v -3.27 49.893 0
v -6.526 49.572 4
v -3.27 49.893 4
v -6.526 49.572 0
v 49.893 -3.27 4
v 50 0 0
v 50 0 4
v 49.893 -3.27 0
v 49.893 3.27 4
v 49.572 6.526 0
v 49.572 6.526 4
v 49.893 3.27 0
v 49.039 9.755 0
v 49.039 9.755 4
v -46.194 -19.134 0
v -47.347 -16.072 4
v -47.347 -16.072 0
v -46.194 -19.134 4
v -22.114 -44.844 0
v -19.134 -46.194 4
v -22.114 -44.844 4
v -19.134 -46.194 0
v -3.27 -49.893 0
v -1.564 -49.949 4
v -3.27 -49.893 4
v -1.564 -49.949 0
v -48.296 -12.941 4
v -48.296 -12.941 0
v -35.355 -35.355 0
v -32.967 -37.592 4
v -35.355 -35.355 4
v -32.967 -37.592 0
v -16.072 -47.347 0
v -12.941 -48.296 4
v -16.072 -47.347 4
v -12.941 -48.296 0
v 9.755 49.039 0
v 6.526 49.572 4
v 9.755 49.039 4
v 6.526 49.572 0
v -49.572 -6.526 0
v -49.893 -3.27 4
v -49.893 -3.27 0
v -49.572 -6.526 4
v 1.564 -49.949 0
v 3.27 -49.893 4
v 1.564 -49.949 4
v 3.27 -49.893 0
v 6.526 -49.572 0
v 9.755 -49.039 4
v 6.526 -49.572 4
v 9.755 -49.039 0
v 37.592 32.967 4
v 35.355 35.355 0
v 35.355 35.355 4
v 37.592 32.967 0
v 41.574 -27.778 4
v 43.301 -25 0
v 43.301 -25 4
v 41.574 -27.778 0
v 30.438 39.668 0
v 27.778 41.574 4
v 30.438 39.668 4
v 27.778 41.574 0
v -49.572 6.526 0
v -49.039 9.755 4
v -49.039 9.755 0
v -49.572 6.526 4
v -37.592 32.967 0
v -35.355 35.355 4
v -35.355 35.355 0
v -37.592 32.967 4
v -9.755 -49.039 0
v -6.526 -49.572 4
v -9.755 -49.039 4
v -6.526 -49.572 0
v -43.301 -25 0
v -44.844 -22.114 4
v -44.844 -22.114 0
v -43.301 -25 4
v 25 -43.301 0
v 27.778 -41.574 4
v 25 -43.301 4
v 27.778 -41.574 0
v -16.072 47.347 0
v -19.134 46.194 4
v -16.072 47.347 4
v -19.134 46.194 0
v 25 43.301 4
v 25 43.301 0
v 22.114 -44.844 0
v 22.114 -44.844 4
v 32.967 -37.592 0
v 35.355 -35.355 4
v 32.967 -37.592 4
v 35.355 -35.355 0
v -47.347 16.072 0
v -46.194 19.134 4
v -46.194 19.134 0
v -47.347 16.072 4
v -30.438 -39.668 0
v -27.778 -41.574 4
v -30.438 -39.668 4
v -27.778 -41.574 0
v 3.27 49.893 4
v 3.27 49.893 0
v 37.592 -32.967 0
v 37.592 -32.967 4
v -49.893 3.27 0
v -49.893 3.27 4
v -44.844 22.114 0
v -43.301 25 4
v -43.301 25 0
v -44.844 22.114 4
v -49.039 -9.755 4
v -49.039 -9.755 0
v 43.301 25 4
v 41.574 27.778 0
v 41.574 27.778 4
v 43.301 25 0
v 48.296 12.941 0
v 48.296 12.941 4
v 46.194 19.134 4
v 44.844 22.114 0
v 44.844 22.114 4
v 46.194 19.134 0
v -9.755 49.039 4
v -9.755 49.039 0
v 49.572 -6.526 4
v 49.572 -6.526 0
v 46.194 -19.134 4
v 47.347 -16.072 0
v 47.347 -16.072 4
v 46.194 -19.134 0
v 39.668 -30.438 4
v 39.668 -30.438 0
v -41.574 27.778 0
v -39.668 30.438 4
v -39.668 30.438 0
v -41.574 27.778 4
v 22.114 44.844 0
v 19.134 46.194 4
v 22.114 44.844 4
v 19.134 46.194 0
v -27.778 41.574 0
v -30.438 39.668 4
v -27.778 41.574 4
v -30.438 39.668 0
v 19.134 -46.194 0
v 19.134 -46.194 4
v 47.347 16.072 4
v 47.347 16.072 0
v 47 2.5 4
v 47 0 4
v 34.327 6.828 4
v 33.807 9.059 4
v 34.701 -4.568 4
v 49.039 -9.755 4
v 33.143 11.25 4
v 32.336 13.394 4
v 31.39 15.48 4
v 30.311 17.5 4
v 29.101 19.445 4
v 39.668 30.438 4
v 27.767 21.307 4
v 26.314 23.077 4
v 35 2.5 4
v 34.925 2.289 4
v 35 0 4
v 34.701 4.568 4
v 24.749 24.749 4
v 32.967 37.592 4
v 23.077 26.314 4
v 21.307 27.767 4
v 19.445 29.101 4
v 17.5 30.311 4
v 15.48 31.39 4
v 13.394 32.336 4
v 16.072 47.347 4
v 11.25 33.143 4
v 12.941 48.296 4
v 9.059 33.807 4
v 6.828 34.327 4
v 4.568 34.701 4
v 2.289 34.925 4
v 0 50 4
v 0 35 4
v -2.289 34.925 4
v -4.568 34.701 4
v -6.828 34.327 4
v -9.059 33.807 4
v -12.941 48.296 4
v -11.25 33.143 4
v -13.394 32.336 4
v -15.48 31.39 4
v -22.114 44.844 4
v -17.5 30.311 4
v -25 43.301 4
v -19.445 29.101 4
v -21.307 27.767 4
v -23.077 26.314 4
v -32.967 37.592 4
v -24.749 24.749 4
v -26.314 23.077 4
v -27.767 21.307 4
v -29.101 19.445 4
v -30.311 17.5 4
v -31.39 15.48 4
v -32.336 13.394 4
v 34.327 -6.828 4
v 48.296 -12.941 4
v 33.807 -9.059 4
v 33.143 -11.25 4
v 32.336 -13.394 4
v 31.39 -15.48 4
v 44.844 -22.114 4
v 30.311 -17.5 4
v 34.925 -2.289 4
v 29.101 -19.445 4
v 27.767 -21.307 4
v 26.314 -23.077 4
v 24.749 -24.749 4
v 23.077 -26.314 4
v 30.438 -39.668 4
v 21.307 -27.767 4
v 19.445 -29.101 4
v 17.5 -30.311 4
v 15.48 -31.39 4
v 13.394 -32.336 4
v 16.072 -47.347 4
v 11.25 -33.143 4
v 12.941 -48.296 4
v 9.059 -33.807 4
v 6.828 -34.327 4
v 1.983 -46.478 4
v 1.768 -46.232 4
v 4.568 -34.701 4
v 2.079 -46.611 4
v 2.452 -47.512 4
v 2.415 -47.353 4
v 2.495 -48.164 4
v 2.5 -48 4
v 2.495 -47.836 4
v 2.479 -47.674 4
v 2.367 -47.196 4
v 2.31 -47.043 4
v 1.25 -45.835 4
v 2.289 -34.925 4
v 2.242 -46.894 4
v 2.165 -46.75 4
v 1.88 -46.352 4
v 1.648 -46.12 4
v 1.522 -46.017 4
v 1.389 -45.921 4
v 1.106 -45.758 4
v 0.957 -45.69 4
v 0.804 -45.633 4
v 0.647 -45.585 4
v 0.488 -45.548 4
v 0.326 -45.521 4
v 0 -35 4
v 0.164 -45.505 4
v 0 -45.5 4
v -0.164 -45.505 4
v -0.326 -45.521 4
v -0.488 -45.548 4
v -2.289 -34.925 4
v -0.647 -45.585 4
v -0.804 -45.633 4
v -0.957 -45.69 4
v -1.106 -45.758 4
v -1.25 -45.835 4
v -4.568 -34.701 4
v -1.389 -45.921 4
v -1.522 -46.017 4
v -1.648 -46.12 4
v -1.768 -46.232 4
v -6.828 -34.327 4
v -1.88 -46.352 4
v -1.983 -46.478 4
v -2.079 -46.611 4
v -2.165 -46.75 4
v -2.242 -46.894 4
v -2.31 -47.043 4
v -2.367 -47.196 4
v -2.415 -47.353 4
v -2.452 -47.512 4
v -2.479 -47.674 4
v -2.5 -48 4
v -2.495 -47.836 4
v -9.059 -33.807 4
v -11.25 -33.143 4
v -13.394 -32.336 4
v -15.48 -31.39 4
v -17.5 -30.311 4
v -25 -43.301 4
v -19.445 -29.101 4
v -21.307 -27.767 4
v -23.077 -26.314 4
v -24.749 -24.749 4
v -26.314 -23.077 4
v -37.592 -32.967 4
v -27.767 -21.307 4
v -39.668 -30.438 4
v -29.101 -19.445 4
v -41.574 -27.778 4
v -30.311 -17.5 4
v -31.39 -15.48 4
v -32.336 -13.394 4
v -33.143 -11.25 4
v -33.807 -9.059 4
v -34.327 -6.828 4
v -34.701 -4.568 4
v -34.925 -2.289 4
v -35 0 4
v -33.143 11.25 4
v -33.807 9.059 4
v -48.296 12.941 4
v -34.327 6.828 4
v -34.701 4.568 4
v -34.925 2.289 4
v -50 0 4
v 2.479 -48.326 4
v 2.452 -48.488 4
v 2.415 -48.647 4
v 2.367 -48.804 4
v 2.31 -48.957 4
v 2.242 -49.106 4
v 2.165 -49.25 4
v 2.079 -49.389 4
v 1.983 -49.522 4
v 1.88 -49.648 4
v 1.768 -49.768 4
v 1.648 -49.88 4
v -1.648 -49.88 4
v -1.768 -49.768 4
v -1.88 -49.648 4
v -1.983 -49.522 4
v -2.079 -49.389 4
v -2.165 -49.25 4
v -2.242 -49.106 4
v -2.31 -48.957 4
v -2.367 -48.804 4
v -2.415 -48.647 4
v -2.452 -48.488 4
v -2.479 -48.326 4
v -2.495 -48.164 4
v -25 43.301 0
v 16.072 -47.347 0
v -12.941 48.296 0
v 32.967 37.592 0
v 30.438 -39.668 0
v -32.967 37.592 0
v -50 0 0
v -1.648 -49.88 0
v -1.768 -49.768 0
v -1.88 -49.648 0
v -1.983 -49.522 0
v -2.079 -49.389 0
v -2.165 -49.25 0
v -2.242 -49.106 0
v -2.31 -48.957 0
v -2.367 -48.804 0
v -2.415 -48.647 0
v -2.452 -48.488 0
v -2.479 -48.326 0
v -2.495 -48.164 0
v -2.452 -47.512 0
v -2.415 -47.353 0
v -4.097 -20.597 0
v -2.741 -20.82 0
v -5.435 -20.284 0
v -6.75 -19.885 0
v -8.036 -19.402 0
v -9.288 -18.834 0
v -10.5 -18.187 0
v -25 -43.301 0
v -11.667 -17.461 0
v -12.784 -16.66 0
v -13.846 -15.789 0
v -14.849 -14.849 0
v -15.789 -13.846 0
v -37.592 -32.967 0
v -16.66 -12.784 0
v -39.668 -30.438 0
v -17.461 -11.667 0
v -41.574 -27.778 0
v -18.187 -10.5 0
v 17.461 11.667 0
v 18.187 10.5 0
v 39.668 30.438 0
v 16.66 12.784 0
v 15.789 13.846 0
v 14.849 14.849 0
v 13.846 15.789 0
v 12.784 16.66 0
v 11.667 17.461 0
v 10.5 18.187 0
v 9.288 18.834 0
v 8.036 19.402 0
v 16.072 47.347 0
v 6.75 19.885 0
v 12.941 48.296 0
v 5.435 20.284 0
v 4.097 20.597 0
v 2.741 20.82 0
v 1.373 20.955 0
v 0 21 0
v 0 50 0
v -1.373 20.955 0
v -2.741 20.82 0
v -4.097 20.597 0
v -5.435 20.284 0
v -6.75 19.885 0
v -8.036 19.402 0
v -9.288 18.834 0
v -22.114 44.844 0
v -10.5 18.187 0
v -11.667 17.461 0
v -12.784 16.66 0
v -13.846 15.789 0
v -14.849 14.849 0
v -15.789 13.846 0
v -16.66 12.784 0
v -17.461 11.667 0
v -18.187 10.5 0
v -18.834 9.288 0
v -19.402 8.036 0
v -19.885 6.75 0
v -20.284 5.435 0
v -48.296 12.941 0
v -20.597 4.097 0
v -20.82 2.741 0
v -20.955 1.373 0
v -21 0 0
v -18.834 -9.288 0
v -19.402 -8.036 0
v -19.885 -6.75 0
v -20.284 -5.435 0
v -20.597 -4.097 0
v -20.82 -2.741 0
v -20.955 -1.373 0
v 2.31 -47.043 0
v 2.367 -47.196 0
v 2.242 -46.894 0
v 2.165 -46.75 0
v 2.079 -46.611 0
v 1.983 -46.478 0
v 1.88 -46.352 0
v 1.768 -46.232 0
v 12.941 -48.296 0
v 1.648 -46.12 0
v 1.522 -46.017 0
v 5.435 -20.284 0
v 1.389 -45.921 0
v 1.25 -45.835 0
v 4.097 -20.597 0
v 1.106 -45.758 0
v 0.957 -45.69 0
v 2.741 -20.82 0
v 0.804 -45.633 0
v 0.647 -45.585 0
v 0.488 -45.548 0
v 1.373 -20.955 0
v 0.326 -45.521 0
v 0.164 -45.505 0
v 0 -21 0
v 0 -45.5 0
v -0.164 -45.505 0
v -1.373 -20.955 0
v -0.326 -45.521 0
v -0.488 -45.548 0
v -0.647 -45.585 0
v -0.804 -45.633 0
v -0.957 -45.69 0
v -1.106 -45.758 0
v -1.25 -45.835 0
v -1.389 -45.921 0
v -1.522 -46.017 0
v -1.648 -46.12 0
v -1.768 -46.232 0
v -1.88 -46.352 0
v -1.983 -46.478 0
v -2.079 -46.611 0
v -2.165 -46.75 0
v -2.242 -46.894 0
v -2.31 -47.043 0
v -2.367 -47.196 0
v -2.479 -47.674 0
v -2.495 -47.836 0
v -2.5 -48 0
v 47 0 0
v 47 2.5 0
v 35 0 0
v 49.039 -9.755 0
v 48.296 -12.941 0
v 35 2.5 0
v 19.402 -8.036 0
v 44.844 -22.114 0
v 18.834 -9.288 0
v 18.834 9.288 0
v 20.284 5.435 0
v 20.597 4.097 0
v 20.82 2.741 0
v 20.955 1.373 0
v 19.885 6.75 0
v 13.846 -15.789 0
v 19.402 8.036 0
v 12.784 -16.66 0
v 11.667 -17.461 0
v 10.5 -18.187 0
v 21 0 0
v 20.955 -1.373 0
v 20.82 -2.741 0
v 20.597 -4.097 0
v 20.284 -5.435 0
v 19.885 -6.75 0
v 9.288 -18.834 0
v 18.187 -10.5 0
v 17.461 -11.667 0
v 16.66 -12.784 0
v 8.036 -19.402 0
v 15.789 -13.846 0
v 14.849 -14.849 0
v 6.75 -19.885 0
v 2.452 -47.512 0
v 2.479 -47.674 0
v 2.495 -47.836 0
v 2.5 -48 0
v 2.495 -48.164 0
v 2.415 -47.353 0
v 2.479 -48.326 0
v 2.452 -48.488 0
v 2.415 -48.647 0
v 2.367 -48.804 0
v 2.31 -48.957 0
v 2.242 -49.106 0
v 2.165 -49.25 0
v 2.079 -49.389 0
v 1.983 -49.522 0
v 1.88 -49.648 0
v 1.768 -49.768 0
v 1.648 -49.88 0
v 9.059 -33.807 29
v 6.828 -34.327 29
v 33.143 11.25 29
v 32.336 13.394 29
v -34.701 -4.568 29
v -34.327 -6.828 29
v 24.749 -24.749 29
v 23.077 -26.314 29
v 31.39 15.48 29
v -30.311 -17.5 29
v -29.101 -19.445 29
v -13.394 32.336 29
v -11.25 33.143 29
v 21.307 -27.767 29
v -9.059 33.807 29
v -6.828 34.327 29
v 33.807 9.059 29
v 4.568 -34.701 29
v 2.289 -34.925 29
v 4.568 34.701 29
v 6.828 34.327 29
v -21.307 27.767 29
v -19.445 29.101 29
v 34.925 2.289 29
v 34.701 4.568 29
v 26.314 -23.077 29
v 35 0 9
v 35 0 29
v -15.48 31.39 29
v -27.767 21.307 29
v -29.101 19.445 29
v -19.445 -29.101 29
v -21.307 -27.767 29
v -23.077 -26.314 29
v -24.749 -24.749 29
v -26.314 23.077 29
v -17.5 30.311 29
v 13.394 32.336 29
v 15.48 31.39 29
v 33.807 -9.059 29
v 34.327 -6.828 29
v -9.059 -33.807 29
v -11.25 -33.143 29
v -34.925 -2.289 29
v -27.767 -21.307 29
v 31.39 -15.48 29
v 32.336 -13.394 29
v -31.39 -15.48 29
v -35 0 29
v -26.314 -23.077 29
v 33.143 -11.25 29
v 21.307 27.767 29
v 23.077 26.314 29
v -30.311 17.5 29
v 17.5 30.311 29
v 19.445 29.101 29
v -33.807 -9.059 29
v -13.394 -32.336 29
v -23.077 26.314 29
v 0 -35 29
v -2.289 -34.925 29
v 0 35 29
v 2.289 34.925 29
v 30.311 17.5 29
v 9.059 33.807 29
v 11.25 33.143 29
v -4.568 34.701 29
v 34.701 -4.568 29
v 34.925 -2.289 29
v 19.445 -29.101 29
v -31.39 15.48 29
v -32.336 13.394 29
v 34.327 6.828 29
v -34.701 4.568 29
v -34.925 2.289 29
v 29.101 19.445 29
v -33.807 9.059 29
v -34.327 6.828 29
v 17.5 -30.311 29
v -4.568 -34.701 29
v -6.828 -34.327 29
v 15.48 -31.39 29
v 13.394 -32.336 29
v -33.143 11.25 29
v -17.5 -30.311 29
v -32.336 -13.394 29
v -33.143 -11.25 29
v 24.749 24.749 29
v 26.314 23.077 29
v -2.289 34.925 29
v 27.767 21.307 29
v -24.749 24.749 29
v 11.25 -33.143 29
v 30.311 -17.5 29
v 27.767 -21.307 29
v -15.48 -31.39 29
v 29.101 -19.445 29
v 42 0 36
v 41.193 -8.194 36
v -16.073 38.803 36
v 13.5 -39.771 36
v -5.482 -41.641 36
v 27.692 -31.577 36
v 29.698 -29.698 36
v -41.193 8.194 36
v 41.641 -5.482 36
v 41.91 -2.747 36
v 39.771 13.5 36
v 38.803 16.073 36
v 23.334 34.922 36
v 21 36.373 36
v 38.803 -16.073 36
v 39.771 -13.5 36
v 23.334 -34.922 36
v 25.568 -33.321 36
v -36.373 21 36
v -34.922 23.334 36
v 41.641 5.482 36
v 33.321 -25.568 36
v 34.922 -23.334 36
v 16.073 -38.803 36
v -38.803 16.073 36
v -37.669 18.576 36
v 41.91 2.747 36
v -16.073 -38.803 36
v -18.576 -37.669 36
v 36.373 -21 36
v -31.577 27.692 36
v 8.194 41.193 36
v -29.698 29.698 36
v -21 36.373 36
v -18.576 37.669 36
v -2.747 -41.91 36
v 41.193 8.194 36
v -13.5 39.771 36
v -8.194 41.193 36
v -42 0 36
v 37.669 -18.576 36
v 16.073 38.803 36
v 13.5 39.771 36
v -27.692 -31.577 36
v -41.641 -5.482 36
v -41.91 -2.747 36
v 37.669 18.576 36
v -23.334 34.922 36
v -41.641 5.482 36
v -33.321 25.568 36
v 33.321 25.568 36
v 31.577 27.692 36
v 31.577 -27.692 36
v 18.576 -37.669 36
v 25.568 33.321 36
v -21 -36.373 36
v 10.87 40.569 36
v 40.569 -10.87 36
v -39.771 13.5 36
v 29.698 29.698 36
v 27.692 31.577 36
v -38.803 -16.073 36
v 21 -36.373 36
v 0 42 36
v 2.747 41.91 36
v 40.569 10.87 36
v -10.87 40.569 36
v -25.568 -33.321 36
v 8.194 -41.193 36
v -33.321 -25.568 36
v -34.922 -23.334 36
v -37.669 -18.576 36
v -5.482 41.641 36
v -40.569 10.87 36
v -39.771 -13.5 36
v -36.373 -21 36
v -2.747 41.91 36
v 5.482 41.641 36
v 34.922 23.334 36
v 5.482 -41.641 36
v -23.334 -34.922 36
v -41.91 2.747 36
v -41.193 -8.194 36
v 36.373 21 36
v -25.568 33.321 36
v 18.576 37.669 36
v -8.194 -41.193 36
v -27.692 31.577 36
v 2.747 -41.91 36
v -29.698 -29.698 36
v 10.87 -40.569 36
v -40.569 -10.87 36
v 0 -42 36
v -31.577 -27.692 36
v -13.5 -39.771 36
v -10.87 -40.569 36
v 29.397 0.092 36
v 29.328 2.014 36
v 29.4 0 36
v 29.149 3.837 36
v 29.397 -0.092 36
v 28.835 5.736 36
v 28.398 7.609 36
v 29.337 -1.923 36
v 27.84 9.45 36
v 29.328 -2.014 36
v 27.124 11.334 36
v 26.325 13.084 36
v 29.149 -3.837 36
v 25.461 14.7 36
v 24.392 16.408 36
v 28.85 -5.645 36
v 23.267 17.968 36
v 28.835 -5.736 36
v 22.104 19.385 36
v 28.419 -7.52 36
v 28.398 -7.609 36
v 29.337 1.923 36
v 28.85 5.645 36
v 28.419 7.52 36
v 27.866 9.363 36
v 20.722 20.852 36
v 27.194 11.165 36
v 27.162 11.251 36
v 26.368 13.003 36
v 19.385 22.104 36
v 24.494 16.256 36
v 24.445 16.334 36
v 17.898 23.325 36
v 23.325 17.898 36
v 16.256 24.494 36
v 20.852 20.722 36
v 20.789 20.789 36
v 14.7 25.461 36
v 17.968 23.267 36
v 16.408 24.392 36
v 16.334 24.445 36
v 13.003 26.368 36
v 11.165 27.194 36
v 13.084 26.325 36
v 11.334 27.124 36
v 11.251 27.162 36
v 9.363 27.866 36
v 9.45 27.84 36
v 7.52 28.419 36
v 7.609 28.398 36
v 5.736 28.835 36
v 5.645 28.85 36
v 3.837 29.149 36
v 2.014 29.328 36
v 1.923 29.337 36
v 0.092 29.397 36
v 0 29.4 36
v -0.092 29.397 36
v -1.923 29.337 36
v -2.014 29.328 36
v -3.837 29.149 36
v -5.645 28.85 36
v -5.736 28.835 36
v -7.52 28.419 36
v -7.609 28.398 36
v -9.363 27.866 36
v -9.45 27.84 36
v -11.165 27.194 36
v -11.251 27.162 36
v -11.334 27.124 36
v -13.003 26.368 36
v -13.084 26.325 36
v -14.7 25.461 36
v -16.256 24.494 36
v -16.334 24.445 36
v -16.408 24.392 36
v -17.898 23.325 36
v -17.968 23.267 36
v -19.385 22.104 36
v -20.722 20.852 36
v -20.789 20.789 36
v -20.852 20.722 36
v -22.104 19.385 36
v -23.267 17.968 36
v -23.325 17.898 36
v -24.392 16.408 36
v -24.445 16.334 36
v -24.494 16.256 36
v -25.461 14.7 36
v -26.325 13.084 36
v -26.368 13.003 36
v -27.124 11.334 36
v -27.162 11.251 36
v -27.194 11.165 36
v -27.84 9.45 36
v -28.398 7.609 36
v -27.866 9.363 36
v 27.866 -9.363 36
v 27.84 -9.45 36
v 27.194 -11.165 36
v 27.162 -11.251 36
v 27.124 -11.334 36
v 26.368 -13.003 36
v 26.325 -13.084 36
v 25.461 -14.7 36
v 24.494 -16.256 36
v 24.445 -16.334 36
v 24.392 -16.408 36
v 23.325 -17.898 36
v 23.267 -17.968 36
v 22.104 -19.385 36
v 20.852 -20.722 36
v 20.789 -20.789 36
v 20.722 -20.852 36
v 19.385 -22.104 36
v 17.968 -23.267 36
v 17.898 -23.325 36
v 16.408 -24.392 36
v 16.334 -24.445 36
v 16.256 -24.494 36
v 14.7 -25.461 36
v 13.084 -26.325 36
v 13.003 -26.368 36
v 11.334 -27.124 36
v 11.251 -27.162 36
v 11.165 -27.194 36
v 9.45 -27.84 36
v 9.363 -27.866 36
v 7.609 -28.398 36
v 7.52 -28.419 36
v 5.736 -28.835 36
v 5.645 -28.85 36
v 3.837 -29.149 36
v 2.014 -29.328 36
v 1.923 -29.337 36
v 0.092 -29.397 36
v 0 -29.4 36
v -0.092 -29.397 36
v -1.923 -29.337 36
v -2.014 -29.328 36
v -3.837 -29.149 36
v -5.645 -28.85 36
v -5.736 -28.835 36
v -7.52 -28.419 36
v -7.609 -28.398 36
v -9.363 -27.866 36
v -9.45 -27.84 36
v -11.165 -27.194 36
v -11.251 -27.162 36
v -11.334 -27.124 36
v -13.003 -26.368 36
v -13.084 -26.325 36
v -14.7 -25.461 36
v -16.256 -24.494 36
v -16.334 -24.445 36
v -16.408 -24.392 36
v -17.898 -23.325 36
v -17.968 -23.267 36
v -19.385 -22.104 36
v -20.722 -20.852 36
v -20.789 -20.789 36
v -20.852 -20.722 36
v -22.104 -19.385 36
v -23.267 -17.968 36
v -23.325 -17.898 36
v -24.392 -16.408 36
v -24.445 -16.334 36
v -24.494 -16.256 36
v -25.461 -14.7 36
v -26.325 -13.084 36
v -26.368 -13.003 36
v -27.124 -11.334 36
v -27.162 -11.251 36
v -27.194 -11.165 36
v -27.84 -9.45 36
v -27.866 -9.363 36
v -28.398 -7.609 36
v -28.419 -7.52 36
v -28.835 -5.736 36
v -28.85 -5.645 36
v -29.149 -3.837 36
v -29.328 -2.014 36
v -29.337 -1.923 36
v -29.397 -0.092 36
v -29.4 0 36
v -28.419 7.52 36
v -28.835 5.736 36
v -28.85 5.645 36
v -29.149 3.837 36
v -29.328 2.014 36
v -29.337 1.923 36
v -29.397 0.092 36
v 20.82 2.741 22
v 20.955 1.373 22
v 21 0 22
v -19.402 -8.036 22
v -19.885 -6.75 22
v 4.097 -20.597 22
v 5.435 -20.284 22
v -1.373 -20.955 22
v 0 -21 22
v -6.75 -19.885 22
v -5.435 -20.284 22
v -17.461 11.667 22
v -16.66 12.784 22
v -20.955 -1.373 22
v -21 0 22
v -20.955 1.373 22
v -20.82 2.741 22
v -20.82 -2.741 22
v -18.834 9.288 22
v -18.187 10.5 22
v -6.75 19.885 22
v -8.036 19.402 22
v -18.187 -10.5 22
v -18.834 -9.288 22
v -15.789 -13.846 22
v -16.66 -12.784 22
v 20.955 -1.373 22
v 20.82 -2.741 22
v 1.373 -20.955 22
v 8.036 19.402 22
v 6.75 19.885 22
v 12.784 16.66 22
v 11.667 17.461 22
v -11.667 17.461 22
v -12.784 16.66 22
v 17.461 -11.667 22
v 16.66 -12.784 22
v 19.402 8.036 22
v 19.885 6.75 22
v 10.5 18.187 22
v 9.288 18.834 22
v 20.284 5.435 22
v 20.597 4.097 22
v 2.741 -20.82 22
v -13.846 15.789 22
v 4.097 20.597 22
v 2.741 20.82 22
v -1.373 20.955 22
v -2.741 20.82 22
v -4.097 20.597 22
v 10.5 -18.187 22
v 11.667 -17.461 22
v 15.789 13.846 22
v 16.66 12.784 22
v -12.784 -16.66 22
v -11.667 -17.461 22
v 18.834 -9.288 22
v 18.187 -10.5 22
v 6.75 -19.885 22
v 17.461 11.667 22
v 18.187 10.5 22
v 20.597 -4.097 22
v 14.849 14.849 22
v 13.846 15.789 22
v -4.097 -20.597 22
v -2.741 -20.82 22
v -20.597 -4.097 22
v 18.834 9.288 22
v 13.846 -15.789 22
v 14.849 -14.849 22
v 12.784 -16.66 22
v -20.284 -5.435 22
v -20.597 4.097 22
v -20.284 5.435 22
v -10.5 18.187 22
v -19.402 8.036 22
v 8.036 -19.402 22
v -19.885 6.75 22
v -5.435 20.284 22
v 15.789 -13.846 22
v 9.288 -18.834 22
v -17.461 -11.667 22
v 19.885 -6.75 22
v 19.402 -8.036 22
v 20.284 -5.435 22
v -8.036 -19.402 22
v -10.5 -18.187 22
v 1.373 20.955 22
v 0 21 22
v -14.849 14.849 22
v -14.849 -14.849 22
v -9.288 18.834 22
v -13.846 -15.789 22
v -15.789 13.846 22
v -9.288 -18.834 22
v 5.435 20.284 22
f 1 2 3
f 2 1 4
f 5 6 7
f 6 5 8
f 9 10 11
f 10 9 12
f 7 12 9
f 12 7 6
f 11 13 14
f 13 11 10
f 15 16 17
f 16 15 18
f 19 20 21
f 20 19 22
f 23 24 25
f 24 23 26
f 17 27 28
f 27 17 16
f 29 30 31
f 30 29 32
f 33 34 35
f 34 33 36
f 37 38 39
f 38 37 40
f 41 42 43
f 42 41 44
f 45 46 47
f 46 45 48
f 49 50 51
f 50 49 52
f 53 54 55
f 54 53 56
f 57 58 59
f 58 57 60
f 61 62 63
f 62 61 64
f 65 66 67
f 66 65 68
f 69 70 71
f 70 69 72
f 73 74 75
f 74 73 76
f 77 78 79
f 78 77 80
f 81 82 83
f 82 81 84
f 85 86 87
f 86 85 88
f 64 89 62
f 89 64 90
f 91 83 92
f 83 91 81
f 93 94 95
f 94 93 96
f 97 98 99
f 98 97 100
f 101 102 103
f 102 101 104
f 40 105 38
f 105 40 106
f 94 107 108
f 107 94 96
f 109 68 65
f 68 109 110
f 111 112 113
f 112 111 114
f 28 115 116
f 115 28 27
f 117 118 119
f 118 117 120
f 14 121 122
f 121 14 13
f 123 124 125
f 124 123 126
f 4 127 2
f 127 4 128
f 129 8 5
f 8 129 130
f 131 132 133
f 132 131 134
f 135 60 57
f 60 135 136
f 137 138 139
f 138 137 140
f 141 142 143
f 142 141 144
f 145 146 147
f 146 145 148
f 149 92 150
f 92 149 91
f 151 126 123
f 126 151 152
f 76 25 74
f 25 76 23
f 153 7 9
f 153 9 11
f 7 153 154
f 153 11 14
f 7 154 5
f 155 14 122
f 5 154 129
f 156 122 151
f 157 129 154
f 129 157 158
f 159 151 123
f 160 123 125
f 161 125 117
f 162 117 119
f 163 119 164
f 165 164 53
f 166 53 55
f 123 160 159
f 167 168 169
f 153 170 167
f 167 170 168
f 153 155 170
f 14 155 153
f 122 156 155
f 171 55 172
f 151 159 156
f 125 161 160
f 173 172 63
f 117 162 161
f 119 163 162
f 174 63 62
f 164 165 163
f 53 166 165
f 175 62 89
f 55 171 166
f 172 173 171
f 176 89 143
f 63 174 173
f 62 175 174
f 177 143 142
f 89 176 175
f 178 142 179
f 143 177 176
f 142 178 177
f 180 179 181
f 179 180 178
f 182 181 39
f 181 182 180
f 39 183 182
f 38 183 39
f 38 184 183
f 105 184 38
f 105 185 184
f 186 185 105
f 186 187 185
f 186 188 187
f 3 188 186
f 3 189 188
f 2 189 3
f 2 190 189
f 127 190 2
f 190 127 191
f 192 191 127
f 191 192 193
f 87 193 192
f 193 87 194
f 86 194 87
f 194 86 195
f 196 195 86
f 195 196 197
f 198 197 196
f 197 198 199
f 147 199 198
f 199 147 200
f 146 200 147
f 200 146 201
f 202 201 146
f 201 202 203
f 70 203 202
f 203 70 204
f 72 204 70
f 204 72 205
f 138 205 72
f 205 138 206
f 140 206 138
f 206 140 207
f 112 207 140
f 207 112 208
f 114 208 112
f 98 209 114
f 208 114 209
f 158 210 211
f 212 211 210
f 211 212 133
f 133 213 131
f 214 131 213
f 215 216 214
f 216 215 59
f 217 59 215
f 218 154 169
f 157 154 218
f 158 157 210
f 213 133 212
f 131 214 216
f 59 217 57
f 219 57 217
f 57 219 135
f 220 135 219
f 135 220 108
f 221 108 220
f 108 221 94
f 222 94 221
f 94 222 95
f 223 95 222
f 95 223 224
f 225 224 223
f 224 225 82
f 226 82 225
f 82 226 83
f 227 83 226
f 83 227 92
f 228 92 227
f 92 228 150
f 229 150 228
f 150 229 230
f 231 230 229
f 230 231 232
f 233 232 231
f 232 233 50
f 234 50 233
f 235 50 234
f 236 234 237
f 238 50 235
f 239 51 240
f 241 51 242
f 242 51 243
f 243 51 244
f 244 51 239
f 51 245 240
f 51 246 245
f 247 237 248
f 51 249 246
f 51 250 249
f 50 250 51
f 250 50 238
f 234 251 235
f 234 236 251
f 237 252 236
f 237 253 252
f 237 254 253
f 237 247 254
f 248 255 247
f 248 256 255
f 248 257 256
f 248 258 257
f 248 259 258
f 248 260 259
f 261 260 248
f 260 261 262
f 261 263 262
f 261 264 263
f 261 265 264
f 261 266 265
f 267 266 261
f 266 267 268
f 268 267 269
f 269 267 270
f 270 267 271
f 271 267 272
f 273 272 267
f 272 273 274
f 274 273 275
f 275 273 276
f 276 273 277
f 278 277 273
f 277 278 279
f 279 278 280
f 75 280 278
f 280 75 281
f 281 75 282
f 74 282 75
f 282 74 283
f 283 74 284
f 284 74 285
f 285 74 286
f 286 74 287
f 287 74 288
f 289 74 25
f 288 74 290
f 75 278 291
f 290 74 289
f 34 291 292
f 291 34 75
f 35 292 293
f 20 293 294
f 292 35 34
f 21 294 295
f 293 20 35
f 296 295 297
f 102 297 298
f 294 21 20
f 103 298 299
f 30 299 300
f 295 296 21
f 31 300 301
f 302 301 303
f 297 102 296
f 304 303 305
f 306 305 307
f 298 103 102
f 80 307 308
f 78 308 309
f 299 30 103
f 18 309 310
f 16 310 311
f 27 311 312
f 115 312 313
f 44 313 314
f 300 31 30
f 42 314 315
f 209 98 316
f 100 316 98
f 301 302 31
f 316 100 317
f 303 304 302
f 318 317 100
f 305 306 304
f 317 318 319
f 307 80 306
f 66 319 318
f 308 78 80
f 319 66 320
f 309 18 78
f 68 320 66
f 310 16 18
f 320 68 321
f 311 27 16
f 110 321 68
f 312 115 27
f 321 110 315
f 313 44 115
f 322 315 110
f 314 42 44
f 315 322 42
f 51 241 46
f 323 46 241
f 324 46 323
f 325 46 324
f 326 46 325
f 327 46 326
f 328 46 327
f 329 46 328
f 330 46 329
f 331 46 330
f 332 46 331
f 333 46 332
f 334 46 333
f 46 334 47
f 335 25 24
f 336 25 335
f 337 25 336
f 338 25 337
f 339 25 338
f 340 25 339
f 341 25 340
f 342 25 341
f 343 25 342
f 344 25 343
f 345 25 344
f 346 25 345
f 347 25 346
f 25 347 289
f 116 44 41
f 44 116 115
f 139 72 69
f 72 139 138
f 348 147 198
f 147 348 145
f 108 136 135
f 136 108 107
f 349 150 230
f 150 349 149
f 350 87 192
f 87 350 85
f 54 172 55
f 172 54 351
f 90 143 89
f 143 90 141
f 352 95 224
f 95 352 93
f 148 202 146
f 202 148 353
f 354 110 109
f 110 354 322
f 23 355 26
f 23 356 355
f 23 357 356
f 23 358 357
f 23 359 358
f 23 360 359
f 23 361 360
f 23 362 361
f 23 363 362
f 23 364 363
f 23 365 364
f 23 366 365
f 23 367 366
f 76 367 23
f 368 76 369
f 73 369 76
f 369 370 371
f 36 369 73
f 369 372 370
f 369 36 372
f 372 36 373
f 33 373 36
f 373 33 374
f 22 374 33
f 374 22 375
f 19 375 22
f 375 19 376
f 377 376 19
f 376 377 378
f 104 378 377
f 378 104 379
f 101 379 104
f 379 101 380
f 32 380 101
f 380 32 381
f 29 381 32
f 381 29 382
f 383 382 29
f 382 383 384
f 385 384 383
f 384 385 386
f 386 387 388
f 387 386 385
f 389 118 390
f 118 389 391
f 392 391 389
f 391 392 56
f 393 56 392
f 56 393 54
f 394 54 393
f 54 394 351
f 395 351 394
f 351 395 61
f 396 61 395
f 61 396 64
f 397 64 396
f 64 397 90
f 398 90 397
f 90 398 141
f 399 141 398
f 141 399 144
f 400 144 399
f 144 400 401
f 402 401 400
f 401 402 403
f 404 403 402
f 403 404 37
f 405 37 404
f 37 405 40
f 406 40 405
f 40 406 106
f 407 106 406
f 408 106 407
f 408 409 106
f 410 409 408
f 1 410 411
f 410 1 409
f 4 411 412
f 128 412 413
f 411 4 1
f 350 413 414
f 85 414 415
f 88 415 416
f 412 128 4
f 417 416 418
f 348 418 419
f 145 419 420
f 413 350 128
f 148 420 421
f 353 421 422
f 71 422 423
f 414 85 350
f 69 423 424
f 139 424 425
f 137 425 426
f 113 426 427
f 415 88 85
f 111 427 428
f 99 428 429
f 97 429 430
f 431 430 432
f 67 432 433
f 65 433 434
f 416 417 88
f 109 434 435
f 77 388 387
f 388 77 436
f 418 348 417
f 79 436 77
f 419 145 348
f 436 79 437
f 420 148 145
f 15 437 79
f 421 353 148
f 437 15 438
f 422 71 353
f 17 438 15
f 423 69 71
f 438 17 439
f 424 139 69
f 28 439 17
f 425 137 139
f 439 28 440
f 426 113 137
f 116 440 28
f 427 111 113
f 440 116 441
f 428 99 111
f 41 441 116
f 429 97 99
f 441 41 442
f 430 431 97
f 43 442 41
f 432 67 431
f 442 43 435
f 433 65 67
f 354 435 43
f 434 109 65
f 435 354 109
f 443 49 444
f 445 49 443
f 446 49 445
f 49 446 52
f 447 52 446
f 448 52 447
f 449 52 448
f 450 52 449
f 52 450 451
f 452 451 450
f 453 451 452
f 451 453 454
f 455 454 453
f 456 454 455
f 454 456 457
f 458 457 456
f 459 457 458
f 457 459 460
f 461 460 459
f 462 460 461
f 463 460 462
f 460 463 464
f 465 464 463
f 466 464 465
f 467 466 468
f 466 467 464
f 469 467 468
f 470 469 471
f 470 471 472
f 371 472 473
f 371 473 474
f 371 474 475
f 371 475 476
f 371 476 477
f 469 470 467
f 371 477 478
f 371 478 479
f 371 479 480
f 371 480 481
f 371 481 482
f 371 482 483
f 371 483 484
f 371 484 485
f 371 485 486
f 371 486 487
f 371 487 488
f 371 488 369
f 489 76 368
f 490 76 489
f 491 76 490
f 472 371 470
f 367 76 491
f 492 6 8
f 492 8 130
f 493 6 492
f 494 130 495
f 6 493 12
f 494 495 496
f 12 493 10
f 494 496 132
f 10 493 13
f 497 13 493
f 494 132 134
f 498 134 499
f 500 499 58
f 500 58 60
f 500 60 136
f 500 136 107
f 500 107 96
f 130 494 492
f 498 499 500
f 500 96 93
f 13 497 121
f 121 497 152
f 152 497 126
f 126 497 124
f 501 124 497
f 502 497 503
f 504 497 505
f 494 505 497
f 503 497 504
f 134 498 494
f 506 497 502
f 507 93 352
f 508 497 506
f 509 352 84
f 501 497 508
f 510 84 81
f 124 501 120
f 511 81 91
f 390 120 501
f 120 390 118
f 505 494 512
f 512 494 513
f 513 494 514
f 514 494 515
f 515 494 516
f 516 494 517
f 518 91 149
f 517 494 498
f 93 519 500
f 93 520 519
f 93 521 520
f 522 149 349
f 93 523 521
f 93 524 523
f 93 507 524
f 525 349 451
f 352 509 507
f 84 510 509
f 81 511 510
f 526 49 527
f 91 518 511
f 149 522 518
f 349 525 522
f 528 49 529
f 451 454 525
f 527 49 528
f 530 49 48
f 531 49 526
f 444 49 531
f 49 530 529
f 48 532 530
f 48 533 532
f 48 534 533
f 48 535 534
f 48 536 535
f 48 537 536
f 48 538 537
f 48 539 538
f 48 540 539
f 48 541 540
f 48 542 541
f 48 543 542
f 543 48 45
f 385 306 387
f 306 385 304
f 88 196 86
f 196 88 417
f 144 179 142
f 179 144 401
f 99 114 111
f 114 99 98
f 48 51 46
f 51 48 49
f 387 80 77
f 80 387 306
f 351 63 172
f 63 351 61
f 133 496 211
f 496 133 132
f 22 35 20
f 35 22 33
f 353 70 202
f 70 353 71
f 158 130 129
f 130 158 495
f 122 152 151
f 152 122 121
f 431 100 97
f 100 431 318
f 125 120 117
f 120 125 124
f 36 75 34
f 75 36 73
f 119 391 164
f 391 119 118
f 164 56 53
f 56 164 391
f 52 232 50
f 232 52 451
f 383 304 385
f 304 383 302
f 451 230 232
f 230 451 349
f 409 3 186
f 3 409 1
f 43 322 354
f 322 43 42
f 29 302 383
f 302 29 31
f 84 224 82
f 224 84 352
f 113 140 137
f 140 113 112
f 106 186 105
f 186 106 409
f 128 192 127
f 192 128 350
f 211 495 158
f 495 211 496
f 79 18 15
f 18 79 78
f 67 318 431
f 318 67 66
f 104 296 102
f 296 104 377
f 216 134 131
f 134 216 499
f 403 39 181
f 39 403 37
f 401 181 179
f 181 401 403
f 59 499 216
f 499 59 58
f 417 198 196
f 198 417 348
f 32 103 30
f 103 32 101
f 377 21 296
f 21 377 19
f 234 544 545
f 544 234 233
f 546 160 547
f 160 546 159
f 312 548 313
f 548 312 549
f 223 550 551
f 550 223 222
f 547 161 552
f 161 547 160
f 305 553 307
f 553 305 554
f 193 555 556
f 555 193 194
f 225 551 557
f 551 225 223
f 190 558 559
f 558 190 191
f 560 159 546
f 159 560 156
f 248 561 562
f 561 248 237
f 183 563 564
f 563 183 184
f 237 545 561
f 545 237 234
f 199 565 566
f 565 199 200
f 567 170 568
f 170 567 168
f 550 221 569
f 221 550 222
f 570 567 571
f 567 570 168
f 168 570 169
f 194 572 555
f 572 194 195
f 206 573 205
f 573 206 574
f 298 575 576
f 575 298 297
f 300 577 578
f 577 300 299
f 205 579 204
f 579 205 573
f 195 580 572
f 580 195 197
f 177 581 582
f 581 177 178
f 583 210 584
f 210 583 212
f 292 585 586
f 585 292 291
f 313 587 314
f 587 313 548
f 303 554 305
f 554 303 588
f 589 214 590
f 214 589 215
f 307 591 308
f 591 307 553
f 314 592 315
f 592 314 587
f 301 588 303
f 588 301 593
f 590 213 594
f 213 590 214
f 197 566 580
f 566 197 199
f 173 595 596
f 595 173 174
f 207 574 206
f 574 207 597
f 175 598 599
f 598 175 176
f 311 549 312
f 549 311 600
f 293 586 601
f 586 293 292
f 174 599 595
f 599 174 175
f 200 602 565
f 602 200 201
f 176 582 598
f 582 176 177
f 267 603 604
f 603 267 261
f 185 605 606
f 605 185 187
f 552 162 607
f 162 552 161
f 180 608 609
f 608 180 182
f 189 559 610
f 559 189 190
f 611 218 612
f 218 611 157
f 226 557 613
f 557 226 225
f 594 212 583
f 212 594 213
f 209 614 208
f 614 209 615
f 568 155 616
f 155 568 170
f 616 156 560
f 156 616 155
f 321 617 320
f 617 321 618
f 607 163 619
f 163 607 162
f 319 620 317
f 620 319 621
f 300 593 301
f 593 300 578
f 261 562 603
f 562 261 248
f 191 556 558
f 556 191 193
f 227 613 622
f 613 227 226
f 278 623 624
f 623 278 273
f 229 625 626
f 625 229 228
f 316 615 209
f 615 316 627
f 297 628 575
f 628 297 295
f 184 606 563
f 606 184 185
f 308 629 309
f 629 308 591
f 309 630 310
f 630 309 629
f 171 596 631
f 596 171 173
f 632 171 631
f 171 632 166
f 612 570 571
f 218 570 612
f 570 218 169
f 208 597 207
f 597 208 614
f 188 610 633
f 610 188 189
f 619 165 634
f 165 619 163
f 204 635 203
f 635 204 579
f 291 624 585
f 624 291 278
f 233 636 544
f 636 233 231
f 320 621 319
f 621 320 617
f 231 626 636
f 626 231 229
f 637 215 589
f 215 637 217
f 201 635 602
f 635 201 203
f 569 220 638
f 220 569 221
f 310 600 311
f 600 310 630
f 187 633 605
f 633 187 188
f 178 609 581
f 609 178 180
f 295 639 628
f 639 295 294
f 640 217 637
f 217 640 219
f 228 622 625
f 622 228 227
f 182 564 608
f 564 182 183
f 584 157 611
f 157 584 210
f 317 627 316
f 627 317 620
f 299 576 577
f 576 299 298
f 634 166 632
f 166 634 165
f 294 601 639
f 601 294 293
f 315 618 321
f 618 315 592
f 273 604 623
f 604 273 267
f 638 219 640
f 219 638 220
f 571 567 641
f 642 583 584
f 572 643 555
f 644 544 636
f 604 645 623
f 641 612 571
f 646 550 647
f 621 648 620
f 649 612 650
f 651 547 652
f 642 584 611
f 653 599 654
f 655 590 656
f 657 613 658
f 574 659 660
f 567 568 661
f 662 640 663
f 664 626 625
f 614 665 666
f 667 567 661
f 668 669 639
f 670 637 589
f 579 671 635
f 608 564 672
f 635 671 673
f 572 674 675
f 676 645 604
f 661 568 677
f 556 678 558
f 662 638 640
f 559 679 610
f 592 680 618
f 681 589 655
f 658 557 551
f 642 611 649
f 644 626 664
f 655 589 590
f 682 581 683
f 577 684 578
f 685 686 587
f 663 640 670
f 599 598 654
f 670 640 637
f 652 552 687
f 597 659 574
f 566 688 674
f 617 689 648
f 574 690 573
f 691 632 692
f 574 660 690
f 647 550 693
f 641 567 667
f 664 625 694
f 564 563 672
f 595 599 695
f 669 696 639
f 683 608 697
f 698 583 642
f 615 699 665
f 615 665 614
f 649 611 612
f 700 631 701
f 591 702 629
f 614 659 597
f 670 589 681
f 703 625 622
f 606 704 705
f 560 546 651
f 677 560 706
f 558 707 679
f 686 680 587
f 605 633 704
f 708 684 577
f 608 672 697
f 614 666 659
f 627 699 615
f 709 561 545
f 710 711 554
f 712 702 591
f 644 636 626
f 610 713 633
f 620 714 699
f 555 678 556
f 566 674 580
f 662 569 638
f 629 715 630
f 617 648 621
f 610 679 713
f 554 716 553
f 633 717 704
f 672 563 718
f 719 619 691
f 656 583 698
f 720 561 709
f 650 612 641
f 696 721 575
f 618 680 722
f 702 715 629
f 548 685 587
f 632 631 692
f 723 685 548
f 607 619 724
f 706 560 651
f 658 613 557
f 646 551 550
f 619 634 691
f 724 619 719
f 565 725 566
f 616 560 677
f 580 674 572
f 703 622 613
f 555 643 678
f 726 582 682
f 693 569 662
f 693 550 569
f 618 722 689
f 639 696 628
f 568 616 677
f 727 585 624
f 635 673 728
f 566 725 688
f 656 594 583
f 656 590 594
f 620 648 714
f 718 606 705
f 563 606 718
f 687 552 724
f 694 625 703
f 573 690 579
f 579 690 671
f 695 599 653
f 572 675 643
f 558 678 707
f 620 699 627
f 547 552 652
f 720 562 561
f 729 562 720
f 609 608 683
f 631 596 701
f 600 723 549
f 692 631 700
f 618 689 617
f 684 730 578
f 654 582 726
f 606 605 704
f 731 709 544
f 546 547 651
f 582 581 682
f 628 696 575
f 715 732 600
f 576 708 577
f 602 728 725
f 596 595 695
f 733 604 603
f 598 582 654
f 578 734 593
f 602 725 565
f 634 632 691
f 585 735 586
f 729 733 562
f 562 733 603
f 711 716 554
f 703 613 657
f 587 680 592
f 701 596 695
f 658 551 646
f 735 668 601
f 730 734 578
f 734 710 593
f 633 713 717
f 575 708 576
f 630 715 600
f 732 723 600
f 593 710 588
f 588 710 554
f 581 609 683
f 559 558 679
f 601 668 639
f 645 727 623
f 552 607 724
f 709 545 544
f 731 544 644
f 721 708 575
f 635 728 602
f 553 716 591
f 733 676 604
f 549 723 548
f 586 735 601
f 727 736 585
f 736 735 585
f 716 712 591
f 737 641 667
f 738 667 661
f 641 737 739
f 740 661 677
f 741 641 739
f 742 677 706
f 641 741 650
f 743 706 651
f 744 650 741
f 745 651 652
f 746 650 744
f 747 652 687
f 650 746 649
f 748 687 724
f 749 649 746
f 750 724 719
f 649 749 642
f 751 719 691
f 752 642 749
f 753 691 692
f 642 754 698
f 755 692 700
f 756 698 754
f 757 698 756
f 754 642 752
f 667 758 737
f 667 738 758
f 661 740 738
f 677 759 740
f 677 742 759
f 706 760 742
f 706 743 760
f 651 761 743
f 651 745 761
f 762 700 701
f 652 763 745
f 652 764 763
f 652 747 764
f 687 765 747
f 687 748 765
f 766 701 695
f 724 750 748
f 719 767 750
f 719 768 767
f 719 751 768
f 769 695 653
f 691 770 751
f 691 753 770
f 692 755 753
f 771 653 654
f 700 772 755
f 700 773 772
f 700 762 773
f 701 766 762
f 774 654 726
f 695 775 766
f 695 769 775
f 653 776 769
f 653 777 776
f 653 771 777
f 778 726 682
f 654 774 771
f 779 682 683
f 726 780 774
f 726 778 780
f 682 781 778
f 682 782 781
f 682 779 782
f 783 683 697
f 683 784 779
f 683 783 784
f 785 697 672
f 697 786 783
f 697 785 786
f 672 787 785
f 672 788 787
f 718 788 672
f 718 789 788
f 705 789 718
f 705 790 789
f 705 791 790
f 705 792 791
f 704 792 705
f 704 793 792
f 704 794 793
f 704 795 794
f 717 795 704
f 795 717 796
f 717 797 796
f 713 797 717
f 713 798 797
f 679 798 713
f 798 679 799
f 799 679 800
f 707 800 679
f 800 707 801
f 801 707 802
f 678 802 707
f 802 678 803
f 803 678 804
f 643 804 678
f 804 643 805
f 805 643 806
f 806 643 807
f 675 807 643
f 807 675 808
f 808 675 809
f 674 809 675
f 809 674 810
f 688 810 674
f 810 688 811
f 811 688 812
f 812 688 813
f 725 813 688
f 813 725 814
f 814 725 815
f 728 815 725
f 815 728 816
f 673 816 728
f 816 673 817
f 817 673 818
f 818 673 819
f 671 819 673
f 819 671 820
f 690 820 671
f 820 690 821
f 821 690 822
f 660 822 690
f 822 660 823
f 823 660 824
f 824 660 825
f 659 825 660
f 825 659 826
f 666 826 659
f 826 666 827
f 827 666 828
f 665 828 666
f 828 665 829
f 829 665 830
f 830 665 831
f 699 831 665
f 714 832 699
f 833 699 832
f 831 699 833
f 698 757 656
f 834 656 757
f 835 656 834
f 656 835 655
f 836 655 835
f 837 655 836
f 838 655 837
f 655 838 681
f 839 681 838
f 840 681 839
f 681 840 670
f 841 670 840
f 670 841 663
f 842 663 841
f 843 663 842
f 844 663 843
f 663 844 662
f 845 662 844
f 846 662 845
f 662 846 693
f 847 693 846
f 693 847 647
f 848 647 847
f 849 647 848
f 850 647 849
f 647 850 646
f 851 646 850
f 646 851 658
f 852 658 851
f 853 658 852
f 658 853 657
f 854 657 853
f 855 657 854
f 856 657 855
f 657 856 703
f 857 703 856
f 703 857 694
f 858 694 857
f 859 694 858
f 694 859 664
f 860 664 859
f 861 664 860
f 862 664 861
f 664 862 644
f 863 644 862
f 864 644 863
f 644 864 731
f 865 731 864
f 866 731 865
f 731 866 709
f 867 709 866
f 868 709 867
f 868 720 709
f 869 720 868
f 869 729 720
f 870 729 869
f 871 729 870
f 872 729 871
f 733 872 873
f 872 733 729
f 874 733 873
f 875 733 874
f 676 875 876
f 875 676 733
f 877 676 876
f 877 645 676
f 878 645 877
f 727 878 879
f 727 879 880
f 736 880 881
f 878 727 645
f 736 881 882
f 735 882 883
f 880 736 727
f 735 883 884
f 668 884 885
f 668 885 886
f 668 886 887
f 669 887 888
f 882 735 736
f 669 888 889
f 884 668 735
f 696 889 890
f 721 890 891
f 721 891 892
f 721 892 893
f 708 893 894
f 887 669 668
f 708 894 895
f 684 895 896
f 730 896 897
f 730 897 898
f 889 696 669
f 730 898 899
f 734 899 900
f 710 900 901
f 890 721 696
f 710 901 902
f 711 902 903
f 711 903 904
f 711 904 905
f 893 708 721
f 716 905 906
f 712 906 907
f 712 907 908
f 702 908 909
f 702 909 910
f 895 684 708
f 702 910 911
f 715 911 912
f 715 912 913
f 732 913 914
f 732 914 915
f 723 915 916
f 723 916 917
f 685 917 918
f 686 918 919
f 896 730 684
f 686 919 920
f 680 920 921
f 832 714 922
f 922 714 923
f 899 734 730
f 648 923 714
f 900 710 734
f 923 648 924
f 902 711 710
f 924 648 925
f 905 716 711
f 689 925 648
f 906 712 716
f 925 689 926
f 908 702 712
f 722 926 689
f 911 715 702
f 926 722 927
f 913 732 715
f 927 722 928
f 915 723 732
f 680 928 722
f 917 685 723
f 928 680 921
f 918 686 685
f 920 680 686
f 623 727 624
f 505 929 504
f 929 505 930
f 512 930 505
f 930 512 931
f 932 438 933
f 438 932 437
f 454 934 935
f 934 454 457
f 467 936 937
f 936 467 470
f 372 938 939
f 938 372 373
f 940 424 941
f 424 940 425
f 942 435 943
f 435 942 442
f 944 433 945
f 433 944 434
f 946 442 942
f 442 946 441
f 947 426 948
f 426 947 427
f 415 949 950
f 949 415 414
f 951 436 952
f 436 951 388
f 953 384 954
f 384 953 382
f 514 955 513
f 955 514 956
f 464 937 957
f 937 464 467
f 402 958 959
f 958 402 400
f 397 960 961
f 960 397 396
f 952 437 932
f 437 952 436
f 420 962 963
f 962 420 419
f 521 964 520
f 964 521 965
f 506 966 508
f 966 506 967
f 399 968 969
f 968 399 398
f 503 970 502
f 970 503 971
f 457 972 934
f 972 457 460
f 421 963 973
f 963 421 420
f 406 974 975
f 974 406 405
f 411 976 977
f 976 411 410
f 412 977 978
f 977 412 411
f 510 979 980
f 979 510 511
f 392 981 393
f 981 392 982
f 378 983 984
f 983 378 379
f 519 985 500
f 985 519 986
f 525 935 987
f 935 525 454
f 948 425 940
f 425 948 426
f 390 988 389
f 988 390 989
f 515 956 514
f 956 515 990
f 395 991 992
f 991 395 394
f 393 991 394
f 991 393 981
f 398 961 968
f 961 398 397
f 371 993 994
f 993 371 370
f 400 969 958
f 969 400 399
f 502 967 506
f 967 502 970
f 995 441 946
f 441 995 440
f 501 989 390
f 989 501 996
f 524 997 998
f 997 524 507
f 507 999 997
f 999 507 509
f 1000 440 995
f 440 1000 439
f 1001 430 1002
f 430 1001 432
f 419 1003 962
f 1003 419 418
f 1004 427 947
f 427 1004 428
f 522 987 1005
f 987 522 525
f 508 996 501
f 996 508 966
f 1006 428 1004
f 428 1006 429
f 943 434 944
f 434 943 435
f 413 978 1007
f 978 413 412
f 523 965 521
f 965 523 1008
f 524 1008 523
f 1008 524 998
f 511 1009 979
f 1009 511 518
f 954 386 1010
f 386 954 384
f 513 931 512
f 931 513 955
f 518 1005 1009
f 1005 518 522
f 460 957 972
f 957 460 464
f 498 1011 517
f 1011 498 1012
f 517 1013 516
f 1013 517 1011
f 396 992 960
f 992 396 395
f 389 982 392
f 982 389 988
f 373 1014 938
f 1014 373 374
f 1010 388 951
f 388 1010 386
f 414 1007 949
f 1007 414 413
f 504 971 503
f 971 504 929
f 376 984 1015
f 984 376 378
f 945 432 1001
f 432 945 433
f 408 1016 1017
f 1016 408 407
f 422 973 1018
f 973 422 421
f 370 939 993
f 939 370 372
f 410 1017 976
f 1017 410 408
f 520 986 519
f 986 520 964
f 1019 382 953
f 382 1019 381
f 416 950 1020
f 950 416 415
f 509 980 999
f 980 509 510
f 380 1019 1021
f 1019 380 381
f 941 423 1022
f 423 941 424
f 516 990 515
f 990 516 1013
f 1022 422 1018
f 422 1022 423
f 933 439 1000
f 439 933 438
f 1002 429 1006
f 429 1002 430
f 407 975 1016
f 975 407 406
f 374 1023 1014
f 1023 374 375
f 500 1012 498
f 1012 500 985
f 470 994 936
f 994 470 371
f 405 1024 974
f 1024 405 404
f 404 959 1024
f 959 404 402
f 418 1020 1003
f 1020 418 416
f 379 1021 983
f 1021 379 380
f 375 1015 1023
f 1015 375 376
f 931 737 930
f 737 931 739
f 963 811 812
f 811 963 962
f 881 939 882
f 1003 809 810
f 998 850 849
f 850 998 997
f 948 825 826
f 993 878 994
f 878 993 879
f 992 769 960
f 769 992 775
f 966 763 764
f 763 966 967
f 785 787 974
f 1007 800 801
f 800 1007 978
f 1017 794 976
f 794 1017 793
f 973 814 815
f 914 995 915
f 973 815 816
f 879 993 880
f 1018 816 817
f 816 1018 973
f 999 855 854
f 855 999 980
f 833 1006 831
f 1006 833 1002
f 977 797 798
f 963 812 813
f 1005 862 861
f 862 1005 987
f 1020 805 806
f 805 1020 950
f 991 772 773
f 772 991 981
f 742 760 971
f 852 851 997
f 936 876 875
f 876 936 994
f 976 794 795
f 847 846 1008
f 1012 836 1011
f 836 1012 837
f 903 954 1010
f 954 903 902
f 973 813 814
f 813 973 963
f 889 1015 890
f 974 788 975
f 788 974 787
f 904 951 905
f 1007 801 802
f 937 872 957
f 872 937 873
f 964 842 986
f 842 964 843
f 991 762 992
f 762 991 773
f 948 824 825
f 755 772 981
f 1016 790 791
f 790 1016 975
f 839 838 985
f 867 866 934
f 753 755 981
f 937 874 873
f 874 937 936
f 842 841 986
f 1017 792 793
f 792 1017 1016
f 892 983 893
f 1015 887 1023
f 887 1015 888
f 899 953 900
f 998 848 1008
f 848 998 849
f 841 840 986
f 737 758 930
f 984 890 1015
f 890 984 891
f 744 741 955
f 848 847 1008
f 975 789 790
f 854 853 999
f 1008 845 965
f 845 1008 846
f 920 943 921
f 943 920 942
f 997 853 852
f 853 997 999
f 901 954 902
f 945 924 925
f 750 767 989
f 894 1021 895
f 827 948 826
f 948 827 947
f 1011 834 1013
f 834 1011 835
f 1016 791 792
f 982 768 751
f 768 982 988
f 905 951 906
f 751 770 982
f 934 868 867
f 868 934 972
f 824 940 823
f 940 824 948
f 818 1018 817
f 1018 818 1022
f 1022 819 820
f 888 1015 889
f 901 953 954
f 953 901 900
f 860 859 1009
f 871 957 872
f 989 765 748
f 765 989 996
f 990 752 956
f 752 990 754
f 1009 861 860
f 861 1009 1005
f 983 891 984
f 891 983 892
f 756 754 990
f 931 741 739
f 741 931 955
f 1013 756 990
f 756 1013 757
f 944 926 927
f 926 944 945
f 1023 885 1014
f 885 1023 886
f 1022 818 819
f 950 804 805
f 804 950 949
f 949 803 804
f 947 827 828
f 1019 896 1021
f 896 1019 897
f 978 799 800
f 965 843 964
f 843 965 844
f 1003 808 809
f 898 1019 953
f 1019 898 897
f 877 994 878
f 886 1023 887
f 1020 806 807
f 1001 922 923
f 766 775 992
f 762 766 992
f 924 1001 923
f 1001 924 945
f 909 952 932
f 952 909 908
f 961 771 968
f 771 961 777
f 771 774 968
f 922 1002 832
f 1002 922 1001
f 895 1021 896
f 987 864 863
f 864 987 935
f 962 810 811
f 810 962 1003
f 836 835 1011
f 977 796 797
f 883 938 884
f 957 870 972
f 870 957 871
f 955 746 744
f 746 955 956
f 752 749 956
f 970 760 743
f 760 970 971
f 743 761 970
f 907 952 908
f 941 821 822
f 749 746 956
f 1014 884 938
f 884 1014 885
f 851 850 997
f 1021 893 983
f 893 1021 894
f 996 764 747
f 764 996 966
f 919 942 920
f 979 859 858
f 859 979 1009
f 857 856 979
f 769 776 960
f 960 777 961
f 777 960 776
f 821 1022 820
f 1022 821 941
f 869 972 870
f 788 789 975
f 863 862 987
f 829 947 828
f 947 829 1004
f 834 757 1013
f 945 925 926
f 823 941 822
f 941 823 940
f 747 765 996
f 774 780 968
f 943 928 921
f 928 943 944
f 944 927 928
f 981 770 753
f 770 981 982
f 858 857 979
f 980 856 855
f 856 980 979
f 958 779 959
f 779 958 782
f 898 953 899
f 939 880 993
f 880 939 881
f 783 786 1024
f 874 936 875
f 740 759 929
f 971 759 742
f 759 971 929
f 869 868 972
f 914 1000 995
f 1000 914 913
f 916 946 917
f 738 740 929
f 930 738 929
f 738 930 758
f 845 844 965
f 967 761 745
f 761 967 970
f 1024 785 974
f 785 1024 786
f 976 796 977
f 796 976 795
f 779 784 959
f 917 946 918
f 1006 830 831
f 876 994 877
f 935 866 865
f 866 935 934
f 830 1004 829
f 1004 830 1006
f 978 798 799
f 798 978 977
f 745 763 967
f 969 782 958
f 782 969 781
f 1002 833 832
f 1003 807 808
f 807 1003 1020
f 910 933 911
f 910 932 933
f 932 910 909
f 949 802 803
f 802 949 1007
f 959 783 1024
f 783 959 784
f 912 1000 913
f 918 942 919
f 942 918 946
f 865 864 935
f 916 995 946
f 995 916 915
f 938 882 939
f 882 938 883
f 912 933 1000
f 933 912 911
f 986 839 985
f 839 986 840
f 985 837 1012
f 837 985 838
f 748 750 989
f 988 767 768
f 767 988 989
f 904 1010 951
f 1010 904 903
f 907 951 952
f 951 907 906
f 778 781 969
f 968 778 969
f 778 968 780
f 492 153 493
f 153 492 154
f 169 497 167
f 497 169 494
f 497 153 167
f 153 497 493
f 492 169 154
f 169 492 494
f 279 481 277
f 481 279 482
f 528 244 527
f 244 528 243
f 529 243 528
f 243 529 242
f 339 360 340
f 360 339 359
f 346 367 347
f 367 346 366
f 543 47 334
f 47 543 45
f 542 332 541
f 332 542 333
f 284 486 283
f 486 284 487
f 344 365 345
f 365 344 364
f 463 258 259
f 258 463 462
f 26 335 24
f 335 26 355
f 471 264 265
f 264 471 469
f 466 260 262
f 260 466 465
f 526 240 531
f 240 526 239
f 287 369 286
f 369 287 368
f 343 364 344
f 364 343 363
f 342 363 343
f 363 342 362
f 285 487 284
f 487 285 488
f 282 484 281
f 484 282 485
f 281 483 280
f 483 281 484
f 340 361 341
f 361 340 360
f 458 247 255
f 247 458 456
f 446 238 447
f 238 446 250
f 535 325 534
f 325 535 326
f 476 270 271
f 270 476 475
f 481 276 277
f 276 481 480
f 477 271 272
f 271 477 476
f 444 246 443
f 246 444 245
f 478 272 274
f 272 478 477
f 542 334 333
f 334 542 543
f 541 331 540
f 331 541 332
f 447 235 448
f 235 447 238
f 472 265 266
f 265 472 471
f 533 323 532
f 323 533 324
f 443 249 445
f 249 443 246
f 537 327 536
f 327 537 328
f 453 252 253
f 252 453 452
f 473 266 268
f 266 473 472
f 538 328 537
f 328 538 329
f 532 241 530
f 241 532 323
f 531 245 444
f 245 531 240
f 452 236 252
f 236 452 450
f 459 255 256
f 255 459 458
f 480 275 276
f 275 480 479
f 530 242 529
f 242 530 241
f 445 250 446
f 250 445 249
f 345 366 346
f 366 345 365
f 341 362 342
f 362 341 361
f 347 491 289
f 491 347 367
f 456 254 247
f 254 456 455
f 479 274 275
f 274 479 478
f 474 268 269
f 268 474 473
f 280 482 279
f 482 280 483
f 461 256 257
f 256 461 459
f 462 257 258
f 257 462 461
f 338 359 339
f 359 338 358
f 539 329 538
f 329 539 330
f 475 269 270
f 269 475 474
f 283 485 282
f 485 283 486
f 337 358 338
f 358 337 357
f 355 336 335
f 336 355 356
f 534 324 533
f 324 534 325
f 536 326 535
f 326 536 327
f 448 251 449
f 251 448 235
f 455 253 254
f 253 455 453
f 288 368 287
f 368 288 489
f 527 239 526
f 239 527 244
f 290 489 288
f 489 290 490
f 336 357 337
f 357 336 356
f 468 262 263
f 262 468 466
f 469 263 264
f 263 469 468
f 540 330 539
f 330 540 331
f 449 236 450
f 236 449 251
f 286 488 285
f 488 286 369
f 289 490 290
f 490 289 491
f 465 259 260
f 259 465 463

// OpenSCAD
// @title Fishing Handline Spool ("yo-yo" caster)
// @category Food & Fishing
// @material PETG or PLA
// @print Large flange down, no supports
// @summary Hand-held fishing reel: wind line on the drum, cast by pointing the conical lip at the target and letting line spiral off. No rod required.
// @use Tie the line through the slot, wind on 30-50m. To cast: hold spool in your off hand lip-forward, swing the weighted hook underhand and release. Rewind by hand. Keep hook stuck into the foam/cork in the centre hole.

$fn = 96;
difference() {
  union() {
    cylinder(d=100, h=4);
    cylinder(d=70, h=29);
    translate([0,0,29]) cylinder(d1=70, d2=84, h=7);
  }
  translate([0,0,-1]) cylinder(d=42, h=40);
  translate([0,0,22]) cylinder(d1=42, d2=60, h=15);
  // line tie slot
  translate([35,0,-1]) cube([12,2.5,10], center=false);
  translate([0,-48,-1]) cylinder(d=5, h=10);
}
